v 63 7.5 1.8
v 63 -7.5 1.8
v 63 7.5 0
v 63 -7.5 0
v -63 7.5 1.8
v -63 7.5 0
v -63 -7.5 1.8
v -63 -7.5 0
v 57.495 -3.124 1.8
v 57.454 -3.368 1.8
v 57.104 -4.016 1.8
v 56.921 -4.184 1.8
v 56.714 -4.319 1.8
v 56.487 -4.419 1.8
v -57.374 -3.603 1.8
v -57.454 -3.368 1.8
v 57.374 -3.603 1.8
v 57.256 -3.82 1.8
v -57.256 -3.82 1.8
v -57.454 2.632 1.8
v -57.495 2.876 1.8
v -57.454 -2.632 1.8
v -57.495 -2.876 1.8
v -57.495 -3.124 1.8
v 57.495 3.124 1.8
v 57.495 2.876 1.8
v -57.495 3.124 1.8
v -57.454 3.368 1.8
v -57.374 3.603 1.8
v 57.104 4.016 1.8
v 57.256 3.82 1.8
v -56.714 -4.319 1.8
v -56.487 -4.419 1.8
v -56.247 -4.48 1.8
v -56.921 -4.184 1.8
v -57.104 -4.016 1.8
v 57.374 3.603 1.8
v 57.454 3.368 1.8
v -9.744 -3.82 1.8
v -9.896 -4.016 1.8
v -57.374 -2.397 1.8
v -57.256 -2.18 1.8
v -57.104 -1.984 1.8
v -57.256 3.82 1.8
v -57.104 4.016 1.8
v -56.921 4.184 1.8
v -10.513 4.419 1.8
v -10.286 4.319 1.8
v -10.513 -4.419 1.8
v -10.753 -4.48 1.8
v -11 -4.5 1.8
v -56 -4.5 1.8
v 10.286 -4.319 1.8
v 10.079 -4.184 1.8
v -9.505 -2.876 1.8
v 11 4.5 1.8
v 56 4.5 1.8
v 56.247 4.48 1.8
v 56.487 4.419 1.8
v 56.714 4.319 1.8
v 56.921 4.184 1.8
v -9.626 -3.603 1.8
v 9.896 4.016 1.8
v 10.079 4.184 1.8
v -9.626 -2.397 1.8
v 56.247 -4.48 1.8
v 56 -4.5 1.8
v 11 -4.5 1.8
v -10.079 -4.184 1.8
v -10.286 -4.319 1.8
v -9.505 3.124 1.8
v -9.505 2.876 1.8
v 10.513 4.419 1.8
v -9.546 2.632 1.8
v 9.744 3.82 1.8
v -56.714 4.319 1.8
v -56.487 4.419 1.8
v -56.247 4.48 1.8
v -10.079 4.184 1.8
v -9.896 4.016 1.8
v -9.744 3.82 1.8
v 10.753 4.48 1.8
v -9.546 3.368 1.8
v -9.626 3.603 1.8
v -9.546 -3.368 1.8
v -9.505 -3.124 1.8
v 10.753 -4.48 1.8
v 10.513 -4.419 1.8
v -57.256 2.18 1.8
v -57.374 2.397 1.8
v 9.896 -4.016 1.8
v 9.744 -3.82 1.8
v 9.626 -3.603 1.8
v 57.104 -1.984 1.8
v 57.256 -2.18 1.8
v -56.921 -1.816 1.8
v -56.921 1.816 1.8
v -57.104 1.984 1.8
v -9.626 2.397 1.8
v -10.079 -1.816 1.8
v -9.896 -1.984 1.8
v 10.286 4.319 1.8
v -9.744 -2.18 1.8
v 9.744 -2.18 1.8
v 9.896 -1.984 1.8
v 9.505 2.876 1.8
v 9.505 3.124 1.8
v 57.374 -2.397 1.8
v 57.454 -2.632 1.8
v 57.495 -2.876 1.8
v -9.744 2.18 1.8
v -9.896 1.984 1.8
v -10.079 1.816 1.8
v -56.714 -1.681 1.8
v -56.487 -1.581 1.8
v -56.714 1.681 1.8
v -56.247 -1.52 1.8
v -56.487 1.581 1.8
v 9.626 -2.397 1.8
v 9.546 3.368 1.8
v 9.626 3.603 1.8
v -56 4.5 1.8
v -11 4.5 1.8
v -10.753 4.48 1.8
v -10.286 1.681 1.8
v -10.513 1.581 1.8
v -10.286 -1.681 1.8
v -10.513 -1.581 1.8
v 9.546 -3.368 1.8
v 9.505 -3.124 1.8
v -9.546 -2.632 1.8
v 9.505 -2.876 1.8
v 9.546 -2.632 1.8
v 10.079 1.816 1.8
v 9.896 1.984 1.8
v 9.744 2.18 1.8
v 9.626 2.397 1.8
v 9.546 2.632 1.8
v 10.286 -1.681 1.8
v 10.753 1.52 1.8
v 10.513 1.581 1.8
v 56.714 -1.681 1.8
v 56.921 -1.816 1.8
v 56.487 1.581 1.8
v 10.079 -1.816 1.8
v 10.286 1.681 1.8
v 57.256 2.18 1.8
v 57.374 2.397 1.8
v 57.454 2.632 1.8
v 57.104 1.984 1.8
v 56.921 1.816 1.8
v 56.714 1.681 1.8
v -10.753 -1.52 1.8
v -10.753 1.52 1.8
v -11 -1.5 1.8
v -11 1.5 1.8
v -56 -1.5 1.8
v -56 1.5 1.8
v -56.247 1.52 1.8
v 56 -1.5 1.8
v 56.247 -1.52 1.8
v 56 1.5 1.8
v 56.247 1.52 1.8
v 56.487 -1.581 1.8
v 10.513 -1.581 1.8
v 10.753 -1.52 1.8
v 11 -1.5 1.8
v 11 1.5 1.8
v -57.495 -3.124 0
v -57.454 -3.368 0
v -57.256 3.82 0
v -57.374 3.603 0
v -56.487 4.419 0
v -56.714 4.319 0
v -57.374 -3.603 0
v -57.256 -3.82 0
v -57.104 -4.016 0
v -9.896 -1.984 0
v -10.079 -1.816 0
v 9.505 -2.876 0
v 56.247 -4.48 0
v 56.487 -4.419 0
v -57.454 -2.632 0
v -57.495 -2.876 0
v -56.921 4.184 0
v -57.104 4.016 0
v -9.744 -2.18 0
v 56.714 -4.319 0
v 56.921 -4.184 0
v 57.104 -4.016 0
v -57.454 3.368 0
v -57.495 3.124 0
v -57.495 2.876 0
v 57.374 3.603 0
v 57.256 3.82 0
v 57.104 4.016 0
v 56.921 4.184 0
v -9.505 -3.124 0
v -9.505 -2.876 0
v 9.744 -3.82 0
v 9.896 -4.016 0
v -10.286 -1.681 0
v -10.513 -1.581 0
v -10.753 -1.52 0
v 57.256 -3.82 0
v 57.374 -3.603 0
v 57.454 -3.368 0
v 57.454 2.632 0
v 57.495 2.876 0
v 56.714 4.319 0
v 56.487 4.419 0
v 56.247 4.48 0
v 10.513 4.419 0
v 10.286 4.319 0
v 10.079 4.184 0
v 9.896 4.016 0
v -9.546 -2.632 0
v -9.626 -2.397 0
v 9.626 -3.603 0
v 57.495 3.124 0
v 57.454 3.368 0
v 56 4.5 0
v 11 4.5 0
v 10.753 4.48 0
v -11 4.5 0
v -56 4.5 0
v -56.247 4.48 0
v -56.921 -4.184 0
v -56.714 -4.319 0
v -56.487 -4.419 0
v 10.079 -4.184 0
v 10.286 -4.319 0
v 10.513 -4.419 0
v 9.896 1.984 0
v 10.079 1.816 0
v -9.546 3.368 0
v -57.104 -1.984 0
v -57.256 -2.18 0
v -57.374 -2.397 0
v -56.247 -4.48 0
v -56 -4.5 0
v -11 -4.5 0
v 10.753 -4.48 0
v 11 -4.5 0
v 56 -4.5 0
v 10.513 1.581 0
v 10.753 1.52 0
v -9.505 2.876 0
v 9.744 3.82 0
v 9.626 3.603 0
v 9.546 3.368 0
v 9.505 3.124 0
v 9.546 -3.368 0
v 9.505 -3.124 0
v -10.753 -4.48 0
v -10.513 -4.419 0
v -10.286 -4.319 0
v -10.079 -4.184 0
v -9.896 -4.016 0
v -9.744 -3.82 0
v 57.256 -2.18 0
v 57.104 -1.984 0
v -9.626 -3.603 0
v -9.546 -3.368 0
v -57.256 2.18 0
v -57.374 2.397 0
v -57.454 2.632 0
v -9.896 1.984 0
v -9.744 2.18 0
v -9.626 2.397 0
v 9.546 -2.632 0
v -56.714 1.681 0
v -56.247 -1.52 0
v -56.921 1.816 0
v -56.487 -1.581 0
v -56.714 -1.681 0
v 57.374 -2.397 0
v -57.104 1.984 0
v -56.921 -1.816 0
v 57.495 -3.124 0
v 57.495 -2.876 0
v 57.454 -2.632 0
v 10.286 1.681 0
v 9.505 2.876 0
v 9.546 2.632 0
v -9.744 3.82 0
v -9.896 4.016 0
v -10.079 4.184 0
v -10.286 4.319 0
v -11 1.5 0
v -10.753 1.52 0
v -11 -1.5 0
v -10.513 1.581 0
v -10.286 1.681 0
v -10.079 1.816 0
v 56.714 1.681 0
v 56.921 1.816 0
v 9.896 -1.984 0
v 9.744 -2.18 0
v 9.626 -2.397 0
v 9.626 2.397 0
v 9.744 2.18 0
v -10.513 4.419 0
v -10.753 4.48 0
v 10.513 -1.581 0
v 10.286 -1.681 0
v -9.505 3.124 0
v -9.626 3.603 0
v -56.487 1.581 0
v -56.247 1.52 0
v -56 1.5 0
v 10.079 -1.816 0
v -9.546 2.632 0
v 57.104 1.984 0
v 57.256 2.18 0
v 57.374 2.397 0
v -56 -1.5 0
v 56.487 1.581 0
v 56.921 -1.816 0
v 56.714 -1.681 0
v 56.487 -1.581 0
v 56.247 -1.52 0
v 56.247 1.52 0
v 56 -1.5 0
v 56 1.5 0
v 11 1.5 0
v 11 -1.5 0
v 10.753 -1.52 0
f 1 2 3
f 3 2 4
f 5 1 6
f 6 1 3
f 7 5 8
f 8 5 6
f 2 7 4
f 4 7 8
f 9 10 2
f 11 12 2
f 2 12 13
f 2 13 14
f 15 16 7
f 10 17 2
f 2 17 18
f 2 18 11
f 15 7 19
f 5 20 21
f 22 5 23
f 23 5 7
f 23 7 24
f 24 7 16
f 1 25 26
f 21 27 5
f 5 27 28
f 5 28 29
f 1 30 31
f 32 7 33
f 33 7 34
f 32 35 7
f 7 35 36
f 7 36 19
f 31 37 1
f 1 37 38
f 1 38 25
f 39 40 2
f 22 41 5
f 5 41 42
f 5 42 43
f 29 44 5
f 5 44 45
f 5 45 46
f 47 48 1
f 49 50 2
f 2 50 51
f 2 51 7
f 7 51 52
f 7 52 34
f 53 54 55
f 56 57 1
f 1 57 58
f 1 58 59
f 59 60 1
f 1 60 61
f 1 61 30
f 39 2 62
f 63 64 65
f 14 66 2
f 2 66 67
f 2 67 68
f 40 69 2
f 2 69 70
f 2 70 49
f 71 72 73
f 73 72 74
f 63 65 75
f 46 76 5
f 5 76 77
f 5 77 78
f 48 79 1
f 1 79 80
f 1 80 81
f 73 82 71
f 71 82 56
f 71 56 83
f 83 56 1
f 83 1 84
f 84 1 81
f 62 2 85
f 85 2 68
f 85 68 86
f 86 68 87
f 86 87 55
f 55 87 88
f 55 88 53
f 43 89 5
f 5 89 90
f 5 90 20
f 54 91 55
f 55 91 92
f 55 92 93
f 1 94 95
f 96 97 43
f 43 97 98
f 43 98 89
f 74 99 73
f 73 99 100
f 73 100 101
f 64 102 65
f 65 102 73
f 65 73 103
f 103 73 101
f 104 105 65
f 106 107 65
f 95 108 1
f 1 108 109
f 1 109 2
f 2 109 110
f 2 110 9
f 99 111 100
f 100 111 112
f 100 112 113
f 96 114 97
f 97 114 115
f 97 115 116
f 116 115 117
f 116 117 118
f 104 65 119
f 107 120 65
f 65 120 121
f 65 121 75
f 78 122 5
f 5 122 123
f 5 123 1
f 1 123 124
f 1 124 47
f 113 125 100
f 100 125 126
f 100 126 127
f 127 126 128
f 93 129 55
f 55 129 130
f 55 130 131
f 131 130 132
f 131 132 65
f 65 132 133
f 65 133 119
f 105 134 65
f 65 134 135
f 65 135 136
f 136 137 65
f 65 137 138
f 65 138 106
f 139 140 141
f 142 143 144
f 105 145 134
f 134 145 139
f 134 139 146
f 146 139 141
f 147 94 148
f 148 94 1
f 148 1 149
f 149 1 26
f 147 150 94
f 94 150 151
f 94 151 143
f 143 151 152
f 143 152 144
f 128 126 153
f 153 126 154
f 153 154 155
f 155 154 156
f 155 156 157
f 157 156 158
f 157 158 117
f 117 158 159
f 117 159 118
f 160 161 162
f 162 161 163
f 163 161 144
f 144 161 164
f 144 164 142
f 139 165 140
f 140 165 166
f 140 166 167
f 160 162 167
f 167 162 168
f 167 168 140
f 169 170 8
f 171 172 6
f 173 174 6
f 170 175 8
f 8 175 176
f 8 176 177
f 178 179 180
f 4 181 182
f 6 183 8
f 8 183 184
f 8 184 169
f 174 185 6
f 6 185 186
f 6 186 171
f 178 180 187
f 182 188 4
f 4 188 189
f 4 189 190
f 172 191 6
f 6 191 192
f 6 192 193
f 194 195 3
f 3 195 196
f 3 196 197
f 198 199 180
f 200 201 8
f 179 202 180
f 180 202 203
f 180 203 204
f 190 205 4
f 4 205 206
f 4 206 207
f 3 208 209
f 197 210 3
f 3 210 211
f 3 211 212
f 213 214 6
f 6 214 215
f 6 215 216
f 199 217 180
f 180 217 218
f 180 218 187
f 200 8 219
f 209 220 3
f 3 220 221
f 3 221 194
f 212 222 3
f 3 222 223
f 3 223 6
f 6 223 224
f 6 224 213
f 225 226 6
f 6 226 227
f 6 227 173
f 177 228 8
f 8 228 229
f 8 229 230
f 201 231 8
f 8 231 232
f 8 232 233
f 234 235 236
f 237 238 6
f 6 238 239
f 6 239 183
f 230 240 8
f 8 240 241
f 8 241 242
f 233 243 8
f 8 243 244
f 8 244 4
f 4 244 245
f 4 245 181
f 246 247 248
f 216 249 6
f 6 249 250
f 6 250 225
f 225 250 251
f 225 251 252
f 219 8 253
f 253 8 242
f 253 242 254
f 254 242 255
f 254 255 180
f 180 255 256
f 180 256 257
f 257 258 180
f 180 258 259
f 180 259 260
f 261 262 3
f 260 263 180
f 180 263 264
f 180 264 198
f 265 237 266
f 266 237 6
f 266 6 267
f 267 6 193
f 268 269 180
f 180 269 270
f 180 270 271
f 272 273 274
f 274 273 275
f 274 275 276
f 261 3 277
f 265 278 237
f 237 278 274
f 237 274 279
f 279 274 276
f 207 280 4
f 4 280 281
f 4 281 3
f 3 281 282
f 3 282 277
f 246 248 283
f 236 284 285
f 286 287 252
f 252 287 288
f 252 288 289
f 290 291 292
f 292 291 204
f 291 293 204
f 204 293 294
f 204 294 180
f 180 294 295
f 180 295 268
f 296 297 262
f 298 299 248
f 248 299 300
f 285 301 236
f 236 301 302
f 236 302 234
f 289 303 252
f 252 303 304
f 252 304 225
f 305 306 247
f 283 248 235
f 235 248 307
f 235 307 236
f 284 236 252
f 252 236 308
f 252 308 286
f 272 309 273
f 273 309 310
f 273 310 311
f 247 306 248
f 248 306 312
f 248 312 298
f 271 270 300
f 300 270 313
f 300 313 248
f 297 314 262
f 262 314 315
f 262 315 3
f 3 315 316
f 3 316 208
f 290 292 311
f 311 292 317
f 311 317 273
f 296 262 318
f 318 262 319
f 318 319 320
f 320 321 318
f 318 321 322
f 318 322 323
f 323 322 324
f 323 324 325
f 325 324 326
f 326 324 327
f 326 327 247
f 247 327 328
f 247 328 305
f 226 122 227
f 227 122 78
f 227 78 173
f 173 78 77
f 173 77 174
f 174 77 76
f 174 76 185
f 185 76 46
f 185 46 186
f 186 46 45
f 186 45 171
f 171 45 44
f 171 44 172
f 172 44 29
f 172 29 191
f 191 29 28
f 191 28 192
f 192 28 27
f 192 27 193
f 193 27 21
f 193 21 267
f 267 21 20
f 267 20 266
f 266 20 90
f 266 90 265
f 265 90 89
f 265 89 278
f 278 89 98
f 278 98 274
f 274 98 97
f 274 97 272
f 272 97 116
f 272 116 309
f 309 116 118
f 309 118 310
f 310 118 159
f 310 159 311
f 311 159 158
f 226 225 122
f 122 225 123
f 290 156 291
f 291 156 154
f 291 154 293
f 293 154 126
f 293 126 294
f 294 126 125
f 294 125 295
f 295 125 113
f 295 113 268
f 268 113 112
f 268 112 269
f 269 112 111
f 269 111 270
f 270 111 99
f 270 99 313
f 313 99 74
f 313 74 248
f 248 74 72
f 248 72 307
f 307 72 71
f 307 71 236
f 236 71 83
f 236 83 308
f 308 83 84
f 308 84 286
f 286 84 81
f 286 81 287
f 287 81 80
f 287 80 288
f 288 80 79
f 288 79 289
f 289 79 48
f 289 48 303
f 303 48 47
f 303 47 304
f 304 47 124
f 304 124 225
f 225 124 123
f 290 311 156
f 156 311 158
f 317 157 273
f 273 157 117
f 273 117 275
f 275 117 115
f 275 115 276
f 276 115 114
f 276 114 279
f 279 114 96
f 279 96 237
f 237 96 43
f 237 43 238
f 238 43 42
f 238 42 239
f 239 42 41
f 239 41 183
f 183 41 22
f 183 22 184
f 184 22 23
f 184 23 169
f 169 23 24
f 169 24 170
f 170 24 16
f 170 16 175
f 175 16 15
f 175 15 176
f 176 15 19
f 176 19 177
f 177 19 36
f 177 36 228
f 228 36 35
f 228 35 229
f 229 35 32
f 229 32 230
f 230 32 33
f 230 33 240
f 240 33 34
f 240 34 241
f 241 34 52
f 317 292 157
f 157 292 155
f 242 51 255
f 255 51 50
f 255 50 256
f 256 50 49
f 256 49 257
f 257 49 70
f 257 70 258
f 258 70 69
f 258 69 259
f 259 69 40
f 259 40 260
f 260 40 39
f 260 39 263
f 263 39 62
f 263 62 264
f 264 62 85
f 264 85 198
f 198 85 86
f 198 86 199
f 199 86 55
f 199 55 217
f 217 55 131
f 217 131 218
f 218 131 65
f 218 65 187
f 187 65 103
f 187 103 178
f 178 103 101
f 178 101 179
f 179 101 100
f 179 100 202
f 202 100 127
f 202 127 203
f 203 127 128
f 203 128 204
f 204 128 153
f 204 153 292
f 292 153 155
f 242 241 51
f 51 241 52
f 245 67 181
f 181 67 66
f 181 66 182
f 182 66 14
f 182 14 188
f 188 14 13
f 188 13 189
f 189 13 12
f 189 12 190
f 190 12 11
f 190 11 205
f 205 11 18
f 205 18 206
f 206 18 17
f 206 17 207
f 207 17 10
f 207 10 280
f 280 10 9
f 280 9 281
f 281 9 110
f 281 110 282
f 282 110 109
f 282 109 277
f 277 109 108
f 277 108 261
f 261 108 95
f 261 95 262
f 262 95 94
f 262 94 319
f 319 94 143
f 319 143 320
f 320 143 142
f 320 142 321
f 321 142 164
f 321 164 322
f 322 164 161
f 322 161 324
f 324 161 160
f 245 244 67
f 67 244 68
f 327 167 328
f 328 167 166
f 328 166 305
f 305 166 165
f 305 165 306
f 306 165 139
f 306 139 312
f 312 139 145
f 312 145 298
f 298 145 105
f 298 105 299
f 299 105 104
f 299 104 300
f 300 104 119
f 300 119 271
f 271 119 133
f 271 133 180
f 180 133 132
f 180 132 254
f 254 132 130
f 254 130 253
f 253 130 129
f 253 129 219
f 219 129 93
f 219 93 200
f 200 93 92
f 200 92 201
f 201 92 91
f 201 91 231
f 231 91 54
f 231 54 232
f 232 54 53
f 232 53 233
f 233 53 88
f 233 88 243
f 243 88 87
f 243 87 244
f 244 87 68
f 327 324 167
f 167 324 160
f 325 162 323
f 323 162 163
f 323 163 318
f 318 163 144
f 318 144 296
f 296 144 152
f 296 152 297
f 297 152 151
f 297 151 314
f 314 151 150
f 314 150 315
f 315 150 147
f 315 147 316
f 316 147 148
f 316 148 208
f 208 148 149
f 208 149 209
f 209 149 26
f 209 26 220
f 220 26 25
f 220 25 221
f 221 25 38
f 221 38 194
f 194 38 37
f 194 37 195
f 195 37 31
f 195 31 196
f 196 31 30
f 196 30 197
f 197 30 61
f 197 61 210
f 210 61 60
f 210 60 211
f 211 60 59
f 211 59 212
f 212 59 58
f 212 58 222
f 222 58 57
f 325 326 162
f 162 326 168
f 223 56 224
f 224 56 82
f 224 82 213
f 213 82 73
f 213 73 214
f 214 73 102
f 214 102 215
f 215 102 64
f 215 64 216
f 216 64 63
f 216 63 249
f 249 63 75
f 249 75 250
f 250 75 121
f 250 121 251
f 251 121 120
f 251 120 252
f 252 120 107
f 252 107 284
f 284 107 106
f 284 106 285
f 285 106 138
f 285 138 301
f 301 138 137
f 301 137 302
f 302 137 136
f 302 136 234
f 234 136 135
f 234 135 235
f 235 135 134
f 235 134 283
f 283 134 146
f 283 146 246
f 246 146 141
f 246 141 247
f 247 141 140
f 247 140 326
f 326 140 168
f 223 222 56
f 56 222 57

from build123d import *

# Parameters (mm, degrees)
ESBO_O1_W                = 126
ESBO_O1_H                = 15
RESSALTO_EXTRUS_O1_DEPTH = 1.8
CORTE_EXTRUS_O1_DEPTH    = 64.470386796


with BuildPart() as part:
    # Esboço1 → Ressalto-extrusão1 (new body)
    with BuildSketch(Plane.XY):
        Rectangle(ESBO_O1_W, ESBO_O1_H)
    extrude(amount=RESSALTO_EXTRUS_O1_DEPTH)

    # Esboço2 → Corte-extrusão1 (cut, through all)
    with BuildSketch(Plane.XY.offset(1.8)):
        with BuildLine():
            Line((-56, 4.5), (-11, 4.5))
            ThreePointArc((-11, 4.5), (-9.5, 3), (-11, 1.5))
            Line((-11, 1.5), (-56, 1.5))
            ThreePointArc((-56, 1.5), (-57.5, 3), (-56, 4.5))
        make_face()
        with BuildLine():
            Line((-56, -4.5), (-11, -4.5))
            ThreePointArc((-11, -4.5), (-9.5, -3), (-11, -1.5))
            Line((-11, -1.5), (-56, -1.5))
            ThreePointArc((-56, -1.5), (-57.5, -3), (-56, -4.5))
        make_face()
        with BuildLine():
            Line((56, -4.5), (11, -4.5))
            ThreePointArc((11, -4.5), (9.5, -3), (11, -1.5))
            Line((11, -1.5), (56, -1.5))
            ThreePointArc((56, -1.5), (57.5, -3), (56, -4.5))
        make_face()
        with BuildLine():
            Line((56, 4.5), (11, 4.5))
            ThreePointArc((11, 4.5), (9.5, 3), (11, 1.5))
            Line((11, 1.5), (56, 1.5))
            ThreePointArc((56, 1.5), (57.5, 3), (56, 4.5))
        make_face()
    extrude(amount=-CORTE_EXTRUS_O1_DEPTH, mode=Mode.SUBTRACT)


solid = part.part
